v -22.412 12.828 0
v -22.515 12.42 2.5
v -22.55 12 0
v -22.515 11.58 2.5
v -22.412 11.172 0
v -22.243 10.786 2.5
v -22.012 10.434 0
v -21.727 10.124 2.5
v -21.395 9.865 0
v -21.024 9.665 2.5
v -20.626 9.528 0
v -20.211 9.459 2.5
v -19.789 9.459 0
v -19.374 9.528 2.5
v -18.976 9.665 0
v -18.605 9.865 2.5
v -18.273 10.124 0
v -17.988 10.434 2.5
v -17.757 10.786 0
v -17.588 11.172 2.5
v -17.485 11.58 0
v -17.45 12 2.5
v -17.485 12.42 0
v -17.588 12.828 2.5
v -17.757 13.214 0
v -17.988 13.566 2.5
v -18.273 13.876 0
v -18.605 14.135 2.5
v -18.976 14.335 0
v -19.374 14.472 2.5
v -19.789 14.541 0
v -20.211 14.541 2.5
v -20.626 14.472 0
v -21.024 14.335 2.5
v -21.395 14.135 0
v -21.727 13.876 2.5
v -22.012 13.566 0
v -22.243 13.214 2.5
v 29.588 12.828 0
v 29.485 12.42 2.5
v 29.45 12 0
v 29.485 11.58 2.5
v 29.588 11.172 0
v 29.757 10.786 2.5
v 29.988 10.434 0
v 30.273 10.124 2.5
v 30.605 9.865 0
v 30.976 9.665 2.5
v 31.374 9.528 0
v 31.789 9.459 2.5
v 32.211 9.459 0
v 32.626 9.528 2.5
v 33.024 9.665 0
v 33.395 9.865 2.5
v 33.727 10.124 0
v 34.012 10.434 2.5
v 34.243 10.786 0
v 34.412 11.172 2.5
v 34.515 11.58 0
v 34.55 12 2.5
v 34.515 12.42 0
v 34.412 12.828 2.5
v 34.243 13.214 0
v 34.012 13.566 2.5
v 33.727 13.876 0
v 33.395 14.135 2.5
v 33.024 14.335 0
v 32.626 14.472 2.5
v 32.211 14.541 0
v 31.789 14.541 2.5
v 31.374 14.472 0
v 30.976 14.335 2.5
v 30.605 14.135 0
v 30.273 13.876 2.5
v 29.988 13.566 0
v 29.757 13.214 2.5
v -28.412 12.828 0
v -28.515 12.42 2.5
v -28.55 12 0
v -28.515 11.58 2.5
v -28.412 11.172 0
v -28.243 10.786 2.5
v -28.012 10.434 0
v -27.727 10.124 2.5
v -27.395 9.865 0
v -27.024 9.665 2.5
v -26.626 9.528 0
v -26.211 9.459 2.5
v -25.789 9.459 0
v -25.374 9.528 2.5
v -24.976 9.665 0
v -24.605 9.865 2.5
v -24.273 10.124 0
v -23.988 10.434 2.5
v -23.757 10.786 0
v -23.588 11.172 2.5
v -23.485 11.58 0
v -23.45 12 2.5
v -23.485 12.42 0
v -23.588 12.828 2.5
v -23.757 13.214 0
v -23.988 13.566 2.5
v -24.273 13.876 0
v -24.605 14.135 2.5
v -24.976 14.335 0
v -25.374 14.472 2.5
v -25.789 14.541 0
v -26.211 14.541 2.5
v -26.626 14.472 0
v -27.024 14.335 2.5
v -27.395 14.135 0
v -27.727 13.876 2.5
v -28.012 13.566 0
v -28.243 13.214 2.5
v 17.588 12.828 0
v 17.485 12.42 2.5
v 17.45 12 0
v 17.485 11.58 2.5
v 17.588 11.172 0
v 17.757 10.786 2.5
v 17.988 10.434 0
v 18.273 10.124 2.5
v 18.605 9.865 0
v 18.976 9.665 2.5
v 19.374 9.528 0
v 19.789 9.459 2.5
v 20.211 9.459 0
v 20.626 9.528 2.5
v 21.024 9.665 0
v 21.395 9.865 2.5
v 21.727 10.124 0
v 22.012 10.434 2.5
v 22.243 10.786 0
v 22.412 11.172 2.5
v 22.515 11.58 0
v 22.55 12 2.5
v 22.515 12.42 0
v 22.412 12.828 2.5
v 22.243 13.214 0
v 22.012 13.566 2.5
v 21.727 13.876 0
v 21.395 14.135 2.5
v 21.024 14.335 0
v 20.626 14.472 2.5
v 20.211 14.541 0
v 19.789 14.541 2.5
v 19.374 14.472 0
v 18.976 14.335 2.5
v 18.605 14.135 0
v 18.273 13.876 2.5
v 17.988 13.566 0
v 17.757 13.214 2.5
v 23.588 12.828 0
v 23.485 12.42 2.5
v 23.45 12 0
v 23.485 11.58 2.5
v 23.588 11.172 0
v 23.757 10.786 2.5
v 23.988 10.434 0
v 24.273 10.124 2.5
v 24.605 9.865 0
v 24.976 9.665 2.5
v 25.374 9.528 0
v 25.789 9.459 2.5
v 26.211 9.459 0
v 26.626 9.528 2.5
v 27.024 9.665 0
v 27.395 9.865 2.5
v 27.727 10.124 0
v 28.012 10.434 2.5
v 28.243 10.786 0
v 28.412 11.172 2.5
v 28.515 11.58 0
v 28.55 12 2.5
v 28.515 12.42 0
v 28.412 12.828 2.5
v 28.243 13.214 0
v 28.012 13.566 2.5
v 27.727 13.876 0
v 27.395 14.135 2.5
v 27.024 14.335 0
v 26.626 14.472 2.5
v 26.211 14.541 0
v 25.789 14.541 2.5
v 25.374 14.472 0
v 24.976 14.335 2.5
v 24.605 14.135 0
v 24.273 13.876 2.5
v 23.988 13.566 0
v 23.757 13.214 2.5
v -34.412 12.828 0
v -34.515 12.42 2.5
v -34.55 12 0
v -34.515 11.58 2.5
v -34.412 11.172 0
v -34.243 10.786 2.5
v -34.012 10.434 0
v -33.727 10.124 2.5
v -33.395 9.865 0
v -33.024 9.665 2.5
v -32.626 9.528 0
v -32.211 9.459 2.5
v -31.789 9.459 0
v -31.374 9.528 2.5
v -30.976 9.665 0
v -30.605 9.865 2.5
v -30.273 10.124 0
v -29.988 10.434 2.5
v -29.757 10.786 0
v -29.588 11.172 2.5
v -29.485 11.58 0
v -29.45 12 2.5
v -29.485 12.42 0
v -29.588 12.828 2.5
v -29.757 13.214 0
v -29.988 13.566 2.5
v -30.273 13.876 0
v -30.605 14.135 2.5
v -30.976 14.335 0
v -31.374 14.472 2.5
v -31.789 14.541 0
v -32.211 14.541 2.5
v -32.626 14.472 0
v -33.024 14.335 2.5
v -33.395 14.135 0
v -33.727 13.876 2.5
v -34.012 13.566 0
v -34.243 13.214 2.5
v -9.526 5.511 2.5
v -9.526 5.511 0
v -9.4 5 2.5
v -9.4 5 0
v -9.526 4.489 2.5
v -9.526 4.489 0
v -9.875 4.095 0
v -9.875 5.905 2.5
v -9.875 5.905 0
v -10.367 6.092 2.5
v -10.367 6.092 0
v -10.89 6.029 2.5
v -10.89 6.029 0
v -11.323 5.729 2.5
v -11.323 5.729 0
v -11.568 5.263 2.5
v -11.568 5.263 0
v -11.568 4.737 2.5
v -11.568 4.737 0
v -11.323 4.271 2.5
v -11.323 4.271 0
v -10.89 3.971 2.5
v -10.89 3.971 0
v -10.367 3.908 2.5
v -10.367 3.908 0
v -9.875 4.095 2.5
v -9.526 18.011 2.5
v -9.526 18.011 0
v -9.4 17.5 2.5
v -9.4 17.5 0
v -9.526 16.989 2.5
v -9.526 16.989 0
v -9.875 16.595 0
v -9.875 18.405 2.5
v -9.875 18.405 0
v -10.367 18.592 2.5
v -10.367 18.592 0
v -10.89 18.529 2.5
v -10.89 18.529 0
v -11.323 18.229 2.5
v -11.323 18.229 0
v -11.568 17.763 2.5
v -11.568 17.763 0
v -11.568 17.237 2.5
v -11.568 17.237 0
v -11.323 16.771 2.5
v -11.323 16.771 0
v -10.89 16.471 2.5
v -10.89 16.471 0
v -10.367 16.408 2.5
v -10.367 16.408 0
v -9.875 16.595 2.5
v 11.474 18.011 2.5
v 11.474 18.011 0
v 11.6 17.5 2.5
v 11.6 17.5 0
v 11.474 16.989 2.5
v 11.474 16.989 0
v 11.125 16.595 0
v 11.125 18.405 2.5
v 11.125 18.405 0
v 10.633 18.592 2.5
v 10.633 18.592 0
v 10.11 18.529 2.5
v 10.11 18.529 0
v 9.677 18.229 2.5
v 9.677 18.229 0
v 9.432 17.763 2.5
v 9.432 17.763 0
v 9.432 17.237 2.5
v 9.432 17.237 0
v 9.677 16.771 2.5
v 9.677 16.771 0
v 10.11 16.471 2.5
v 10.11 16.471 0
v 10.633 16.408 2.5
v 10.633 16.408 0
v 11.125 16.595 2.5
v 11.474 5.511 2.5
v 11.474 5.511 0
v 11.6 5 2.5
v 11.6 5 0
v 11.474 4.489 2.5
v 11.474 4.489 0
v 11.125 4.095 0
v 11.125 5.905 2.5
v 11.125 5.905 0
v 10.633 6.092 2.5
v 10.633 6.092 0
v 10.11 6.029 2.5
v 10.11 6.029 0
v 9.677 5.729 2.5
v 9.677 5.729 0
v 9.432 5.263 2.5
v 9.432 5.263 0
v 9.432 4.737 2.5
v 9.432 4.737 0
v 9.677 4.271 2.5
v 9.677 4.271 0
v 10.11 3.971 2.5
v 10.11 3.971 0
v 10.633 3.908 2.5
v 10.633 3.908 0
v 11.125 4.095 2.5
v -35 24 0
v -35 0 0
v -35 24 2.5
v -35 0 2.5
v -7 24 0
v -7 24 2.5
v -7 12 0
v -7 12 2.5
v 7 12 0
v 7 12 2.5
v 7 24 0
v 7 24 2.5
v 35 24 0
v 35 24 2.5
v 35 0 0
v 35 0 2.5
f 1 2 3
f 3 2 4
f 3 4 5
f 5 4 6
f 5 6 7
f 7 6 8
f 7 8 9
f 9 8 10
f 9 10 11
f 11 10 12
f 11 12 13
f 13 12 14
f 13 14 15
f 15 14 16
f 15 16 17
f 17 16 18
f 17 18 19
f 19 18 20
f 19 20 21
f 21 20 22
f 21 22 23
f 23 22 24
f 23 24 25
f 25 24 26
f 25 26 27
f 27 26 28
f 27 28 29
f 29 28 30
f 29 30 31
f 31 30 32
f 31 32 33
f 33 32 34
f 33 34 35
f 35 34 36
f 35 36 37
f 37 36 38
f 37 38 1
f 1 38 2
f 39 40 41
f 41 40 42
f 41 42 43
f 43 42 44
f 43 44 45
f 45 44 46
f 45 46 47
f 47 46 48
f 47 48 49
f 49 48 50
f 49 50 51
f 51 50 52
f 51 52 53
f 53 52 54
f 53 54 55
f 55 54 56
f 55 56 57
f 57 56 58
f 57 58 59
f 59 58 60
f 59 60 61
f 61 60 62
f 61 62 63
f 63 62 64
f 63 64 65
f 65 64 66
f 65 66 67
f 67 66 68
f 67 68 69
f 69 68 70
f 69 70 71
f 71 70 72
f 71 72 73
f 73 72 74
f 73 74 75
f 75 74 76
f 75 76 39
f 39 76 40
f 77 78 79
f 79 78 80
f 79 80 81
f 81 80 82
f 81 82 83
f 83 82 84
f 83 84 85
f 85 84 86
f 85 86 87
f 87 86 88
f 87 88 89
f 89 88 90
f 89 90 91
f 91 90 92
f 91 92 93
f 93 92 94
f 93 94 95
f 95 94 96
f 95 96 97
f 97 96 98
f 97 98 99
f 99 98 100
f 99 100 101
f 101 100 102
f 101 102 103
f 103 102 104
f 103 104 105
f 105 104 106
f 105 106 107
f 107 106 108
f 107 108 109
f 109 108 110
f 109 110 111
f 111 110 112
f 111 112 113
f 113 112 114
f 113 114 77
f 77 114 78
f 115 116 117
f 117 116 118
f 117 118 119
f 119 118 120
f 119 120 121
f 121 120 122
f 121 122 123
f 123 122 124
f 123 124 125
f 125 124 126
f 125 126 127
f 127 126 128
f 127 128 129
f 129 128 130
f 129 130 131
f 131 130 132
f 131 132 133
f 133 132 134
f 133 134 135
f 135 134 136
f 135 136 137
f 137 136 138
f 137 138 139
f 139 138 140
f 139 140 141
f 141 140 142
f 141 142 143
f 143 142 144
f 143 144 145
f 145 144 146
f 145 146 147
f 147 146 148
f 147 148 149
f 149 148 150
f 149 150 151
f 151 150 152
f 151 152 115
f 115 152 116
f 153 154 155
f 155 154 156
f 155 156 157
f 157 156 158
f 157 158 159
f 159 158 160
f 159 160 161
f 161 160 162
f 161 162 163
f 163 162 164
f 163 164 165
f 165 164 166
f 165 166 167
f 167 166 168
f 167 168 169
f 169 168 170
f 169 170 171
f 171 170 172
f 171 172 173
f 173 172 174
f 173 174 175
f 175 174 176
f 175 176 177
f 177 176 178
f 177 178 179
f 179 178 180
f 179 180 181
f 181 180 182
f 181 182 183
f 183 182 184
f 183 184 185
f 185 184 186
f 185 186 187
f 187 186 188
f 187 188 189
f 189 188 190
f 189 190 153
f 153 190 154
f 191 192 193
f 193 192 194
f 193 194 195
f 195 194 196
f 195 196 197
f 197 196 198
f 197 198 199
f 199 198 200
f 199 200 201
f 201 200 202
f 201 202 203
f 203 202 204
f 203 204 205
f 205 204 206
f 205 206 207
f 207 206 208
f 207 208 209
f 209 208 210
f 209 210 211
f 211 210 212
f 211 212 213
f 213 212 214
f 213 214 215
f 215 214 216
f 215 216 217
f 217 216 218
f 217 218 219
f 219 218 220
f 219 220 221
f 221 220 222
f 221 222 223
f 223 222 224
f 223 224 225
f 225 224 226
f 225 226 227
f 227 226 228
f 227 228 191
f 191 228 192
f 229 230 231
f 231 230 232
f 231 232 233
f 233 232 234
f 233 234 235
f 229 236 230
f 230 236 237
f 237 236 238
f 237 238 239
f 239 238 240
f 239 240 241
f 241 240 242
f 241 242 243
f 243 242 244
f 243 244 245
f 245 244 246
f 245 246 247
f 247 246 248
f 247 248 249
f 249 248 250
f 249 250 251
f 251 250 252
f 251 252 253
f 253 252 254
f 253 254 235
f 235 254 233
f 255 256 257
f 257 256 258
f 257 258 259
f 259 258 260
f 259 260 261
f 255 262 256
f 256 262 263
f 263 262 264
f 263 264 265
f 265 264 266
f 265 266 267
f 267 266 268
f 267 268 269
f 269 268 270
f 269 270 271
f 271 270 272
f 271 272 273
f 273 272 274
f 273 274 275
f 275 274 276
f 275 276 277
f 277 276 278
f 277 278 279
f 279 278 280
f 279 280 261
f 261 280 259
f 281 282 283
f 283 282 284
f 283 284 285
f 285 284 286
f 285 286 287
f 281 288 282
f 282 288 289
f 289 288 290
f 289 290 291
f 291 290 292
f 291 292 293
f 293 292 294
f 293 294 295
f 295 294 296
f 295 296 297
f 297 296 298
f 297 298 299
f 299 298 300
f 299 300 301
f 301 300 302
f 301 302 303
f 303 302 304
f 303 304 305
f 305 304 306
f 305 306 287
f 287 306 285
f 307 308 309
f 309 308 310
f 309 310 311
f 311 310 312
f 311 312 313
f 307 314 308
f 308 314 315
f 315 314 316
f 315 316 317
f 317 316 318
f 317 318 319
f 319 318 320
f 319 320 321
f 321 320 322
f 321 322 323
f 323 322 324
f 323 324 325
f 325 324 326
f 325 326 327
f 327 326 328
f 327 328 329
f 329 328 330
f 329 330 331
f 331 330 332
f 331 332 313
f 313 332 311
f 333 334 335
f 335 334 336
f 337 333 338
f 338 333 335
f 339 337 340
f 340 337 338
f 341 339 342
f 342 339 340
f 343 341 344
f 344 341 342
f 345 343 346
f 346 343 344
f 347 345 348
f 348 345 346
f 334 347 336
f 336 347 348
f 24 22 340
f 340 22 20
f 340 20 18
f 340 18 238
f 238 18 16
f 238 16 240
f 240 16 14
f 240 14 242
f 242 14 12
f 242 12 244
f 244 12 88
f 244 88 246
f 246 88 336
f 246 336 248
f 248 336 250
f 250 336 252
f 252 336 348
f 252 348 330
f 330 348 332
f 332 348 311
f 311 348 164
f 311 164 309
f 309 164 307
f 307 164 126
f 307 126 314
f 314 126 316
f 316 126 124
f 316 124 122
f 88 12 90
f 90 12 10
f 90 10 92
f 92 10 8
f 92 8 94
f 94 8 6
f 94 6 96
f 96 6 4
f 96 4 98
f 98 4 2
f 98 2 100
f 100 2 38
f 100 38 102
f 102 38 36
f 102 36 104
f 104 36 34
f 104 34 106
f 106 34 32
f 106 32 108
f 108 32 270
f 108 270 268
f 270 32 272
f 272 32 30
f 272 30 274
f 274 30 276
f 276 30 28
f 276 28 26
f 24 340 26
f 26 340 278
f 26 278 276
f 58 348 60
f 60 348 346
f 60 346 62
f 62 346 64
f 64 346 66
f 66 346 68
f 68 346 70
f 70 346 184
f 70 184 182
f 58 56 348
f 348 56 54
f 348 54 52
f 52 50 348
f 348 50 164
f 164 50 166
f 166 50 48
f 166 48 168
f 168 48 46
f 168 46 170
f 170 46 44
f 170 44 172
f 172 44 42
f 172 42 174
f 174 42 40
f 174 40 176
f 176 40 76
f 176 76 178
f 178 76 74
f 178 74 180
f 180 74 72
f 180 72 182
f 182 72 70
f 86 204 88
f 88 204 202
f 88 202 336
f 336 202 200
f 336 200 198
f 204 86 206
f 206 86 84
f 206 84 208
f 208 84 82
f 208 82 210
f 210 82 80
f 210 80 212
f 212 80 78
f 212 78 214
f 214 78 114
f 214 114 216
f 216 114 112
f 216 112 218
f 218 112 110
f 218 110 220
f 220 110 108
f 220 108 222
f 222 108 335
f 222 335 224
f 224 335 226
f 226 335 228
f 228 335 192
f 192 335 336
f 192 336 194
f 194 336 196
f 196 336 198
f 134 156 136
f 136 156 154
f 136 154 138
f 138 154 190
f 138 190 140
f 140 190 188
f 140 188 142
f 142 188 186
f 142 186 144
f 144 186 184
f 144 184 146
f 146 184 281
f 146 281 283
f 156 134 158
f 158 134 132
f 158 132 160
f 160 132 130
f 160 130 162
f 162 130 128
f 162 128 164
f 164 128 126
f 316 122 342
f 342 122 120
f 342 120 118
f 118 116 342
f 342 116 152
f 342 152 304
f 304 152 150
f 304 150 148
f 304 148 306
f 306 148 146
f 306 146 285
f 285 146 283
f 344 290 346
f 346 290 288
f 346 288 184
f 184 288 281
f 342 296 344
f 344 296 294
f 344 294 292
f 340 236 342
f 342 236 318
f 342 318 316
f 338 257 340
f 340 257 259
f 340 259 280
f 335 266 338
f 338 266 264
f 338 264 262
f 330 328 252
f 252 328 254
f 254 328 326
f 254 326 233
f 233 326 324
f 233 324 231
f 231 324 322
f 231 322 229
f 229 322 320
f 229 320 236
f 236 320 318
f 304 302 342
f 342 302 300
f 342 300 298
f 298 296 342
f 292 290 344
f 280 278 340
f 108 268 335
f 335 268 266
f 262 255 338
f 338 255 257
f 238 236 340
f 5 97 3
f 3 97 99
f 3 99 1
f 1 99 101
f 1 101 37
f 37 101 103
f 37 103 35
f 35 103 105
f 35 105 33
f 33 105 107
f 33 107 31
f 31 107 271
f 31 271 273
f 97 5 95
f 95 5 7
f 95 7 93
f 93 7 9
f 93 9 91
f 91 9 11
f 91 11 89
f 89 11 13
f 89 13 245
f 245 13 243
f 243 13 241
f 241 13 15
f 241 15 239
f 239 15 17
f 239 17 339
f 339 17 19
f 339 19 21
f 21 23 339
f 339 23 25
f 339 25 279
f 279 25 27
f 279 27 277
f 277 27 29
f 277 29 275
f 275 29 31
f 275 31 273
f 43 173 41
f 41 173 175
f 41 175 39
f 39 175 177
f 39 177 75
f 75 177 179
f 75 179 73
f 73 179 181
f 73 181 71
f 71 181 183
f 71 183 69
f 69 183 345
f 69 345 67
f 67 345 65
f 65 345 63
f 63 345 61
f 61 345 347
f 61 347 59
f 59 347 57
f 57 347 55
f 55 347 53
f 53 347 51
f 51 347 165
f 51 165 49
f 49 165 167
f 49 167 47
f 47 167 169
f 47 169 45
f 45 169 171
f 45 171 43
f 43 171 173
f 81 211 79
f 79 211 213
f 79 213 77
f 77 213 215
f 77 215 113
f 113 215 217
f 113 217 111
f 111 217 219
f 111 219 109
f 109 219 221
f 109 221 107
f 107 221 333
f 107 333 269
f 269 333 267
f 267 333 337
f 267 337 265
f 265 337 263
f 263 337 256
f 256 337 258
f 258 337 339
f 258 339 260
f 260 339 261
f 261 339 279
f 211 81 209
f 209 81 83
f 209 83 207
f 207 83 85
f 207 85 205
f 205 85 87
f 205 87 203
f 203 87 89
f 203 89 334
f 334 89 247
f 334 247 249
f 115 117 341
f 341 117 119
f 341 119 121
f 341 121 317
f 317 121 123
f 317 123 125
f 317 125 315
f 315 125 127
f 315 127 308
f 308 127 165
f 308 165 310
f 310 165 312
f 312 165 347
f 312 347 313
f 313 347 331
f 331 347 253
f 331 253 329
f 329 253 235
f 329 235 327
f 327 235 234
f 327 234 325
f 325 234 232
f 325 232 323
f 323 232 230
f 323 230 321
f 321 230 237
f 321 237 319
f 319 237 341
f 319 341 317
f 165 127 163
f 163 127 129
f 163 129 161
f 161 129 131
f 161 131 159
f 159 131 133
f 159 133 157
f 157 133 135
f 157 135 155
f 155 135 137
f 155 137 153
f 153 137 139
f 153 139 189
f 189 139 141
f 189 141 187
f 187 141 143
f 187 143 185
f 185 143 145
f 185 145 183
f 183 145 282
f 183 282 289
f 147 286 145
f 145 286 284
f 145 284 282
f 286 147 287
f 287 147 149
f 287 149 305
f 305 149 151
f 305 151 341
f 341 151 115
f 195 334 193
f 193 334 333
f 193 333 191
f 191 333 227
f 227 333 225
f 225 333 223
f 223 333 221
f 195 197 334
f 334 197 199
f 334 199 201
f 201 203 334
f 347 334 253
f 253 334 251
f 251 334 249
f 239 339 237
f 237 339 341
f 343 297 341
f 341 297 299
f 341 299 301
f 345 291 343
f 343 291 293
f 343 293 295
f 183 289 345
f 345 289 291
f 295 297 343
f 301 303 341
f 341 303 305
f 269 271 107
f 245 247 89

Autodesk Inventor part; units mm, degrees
ref_plane "YZ Plane" through (0, 0, 0) normal (1, 0, 0) x (0, 1, 0)
ref_plane "XZ Plane" through (0, 0, 0) normal (0, 1, 0) x (-1, 0, 0)
ref_plane "XY Plane" through (0, 0, 0) normal (0, 0, 1) x (1, 0, 0)
sketch "Náčrt1" plane through (0, 0, 0) normal (0, 0, 1) x (1, 0, 0)
  line L0 (0, 0) -> (0, 32)
  line L1 (0, 0) -> (35, 0)
  circle A0 centre (10.5, 5) radius 1.1
  circle A1 centre (10.5, 17.5) radius 1.1
  line L2 (0, 12) -> (7, 12)
  line L3 (7, 12) -> (7, 24)
  line L4 (7, 24) -> (35, 24)
  line L5 (35, 24) -> (35, 0)
  line L6 (0, 0) -> (-35, 0)
  circle A2 centre (-10.5, 5) radius 1.1
  circle A3 centre (-10.5, 17.5) radius 1.1
  line L7 (0, 12) -> (-7, 12)
  line L8 (-7, 12) -> (-7, 24)
  line L9 (-7, 24) -> (-35, 24)
  line L10 (-35, 24) -> (-35, 0)
  dimension "d0" = 32
  dimension "d1" = 35
  dimension "d2" = 2.2
  dimension "d3" = 5
  dimension "d4" = 10.5
  dimension "d5" = 2.2
  dimension "d6" = 12.5
  dimension "d7" = 12
  dimension "d8" = 7
  dimension "d9" = 12
extrude "Vysunutí1" add sketch "Náčrt1" along normal blind 2.5
sketch "Náčrt2" plane through (0, 0, 2.5) normal (0, 0, 1) x (1, 0, 0)
  line L0 (7, 12) -> (-7, 12) projected
  line L1 (0, 12) -> (-35, 12)
  line L2 (-35, 24) -> (-35, 0) projected
  circle A0 centre (-32, 12) radius 2.55
  circle A1 centre (-26, 12) radius 2.55
  circle A2 centre (-20, 12) radius 2.55
  line L3 (-7, 12) -> (-7, 24) projected
  line L4 (0, 0) -> (0, 12)
  circle A3 centre (32, 12) radius 2.55
  circle A4 centre (26, 12) radius 2.55
  circle A5 centre (20, 12) radius 2.55
  dimension "d12" = 5.1
  dimension "d17" = 13
  dimension "d18" = 5.1
  dimension "d19" = 5.1
  dimension "d20" = 6
  dimension "d21" = 6
extrude "Vysunutí2" cut sketch "Náčrt2" against normal through all
properties part number "kamera2"
